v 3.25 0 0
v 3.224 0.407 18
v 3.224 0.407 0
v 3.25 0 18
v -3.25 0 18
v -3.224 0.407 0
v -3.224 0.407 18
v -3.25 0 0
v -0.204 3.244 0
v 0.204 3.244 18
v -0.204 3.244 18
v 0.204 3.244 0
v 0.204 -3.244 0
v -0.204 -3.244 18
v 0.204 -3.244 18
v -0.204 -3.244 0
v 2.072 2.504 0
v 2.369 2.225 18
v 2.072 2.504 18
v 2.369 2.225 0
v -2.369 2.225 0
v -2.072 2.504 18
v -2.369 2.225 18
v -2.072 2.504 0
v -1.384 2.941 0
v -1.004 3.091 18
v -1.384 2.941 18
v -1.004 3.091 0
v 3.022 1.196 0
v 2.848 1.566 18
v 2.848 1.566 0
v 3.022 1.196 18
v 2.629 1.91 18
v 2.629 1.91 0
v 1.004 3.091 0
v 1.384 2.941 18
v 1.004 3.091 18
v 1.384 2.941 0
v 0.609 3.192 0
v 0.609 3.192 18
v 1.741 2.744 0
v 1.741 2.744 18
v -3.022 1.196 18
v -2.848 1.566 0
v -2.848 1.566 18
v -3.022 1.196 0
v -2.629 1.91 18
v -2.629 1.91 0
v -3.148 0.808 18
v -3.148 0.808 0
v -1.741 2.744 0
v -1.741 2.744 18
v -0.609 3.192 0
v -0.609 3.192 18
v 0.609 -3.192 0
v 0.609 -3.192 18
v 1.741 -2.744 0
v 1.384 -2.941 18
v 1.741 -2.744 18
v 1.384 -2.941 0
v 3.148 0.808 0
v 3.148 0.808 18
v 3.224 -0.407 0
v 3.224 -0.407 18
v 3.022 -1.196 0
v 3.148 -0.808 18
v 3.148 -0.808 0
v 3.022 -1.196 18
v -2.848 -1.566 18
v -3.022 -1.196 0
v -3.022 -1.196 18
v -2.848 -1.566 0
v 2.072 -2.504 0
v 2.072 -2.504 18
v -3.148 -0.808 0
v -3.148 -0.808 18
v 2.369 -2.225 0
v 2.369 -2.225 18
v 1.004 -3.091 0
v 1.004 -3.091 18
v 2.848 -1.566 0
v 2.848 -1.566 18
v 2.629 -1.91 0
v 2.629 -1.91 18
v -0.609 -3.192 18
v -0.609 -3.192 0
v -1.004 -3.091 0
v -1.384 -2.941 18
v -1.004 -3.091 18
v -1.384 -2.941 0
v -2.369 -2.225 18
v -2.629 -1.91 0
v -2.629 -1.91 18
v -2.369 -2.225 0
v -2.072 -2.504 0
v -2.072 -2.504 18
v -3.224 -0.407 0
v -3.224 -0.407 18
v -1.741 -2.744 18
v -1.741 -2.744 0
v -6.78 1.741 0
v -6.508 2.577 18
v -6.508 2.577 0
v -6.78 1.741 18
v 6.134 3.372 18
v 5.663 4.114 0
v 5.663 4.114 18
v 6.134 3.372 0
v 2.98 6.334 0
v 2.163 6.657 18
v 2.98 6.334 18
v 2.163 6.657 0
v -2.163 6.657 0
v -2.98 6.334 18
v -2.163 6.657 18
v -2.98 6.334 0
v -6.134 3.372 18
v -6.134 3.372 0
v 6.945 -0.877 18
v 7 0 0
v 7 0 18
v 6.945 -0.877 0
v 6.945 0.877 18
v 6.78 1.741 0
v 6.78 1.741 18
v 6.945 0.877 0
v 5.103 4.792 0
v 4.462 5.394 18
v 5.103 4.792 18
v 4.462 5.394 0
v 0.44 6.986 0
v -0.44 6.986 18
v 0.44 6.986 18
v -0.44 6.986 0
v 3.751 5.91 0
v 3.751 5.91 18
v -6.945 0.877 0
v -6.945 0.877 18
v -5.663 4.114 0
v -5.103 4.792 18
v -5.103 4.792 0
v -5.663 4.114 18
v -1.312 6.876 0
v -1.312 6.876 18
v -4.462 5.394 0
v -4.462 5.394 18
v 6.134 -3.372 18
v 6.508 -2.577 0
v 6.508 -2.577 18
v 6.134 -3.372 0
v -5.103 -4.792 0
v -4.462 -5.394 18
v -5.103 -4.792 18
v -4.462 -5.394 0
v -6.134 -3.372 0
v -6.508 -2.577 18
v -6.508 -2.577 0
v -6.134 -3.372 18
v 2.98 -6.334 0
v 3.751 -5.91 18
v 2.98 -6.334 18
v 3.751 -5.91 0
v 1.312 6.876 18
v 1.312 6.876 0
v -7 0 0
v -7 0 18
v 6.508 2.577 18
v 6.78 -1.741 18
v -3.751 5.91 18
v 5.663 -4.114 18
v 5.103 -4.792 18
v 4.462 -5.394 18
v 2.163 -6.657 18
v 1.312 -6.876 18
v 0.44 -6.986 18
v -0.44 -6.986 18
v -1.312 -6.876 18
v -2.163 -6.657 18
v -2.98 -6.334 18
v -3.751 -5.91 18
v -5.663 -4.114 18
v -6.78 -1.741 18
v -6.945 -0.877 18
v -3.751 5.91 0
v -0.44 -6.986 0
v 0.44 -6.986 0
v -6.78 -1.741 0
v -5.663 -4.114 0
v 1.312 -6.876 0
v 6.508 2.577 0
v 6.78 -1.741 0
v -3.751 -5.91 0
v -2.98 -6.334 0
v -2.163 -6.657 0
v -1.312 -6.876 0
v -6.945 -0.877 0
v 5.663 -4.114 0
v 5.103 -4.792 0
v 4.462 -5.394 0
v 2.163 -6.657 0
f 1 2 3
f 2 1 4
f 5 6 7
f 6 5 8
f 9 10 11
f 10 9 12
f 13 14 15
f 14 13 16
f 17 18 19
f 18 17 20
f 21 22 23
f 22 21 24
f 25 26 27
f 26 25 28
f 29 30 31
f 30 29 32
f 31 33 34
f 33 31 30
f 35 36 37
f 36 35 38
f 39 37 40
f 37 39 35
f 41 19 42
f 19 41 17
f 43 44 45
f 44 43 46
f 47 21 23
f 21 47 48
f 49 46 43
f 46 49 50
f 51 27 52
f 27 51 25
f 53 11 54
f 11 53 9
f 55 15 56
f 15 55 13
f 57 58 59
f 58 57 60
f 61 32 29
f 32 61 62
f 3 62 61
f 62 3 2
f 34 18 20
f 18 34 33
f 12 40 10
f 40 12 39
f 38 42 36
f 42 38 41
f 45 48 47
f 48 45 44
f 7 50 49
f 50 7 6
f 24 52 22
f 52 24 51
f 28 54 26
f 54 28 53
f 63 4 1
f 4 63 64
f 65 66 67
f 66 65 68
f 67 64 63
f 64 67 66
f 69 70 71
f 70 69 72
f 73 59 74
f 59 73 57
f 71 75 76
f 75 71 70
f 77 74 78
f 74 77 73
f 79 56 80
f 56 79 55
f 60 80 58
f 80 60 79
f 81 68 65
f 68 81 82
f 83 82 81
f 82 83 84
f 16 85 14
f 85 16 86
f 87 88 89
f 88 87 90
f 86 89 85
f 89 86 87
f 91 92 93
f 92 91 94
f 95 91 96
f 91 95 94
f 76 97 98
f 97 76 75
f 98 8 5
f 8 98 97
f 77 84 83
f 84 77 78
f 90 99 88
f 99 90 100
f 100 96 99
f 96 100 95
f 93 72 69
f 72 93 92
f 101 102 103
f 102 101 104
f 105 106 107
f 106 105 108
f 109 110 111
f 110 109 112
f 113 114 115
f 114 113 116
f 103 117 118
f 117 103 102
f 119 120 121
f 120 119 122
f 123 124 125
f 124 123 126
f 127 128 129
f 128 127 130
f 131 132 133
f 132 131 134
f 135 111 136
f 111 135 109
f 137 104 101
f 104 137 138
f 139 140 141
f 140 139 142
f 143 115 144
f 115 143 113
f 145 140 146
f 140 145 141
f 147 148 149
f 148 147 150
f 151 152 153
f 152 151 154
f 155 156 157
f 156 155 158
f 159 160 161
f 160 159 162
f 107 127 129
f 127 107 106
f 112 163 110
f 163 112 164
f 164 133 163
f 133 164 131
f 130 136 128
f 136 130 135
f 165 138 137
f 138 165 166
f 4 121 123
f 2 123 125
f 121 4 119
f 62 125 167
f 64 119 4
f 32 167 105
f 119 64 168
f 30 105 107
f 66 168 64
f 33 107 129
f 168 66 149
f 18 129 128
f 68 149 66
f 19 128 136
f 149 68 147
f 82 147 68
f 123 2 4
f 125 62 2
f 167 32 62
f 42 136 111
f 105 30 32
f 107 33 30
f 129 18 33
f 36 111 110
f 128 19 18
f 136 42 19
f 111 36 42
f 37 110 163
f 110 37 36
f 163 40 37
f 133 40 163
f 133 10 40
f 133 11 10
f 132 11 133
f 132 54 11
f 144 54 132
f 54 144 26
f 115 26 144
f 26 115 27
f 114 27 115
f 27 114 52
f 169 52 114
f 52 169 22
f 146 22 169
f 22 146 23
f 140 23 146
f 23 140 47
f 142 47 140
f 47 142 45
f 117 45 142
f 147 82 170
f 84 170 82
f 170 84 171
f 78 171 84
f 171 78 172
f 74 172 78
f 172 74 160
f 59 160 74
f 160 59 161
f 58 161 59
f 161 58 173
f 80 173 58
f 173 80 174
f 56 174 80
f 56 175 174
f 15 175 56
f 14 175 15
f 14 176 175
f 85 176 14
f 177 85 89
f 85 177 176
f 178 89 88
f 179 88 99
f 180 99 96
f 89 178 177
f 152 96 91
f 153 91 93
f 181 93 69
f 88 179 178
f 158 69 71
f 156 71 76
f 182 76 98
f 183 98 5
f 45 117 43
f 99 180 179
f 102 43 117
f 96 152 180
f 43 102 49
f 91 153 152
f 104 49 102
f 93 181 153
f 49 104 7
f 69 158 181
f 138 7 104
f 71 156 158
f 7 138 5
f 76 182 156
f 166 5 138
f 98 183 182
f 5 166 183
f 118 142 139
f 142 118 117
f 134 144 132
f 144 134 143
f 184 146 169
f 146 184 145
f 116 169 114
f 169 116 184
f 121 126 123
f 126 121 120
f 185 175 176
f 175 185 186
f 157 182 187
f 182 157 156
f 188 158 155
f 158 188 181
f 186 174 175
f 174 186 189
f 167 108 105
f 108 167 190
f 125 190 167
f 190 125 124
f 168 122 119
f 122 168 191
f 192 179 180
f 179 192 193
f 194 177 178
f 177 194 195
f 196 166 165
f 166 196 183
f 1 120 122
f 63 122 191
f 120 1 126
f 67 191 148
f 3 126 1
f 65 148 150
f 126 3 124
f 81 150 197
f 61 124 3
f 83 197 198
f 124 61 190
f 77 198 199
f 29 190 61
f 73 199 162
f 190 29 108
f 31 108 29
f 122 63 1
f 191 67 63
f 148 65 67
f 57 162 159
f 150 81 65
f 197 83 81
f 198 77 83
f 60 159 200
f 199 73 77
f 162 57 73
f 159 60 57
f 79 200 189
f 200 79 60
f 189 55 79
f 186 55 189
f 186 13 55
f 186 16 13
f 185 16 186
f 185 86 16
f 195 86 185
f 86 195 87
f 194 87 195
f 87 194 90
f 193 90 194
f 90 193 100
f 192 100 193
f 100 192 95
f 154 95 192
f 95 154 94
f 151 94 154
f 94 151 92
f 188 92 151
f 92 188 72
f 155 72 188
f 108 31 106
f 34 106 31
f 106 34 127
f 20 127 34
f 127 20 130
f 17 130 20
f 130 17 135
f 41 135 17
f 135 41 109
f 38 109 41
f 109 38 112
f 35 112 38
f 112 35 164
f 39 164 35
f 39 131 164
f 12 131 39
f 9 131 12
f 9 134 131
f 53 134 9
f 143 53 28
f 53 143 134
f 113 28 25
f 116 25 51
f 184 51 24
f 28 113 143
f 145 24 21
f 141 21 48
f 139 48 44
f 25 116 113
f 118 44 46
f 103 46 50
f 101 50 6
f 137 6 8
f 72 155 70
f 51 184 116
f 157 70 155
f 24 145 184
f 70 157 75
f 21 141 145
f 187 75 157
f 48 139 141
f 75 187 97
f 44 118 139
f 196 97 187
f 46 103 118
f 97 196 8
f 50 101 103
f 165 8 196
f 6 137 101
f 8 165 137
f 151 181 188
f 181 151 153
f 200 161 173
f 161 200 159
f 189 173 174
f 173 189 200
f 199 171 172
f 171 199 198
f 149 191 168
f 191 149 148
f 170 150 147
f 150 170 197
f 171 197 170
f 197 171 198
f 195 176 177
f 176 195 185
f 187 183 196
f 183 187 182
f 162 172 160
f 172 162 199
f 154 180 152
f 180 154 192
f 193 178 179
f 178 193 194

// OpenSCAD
$fn = 50;


difference() {
	union() {
		cylinder(h = 18, r = 7.0000000000);
	}
	union() {
		cylinder(h = 18, r = 3.2500000000);
		cylinder(h = 18, r = 1.8000000000);
		cylinder(h = 18, r = 1.8000000000);
		cylinder(h = 18, r = 1.8000000000);
	}
}
